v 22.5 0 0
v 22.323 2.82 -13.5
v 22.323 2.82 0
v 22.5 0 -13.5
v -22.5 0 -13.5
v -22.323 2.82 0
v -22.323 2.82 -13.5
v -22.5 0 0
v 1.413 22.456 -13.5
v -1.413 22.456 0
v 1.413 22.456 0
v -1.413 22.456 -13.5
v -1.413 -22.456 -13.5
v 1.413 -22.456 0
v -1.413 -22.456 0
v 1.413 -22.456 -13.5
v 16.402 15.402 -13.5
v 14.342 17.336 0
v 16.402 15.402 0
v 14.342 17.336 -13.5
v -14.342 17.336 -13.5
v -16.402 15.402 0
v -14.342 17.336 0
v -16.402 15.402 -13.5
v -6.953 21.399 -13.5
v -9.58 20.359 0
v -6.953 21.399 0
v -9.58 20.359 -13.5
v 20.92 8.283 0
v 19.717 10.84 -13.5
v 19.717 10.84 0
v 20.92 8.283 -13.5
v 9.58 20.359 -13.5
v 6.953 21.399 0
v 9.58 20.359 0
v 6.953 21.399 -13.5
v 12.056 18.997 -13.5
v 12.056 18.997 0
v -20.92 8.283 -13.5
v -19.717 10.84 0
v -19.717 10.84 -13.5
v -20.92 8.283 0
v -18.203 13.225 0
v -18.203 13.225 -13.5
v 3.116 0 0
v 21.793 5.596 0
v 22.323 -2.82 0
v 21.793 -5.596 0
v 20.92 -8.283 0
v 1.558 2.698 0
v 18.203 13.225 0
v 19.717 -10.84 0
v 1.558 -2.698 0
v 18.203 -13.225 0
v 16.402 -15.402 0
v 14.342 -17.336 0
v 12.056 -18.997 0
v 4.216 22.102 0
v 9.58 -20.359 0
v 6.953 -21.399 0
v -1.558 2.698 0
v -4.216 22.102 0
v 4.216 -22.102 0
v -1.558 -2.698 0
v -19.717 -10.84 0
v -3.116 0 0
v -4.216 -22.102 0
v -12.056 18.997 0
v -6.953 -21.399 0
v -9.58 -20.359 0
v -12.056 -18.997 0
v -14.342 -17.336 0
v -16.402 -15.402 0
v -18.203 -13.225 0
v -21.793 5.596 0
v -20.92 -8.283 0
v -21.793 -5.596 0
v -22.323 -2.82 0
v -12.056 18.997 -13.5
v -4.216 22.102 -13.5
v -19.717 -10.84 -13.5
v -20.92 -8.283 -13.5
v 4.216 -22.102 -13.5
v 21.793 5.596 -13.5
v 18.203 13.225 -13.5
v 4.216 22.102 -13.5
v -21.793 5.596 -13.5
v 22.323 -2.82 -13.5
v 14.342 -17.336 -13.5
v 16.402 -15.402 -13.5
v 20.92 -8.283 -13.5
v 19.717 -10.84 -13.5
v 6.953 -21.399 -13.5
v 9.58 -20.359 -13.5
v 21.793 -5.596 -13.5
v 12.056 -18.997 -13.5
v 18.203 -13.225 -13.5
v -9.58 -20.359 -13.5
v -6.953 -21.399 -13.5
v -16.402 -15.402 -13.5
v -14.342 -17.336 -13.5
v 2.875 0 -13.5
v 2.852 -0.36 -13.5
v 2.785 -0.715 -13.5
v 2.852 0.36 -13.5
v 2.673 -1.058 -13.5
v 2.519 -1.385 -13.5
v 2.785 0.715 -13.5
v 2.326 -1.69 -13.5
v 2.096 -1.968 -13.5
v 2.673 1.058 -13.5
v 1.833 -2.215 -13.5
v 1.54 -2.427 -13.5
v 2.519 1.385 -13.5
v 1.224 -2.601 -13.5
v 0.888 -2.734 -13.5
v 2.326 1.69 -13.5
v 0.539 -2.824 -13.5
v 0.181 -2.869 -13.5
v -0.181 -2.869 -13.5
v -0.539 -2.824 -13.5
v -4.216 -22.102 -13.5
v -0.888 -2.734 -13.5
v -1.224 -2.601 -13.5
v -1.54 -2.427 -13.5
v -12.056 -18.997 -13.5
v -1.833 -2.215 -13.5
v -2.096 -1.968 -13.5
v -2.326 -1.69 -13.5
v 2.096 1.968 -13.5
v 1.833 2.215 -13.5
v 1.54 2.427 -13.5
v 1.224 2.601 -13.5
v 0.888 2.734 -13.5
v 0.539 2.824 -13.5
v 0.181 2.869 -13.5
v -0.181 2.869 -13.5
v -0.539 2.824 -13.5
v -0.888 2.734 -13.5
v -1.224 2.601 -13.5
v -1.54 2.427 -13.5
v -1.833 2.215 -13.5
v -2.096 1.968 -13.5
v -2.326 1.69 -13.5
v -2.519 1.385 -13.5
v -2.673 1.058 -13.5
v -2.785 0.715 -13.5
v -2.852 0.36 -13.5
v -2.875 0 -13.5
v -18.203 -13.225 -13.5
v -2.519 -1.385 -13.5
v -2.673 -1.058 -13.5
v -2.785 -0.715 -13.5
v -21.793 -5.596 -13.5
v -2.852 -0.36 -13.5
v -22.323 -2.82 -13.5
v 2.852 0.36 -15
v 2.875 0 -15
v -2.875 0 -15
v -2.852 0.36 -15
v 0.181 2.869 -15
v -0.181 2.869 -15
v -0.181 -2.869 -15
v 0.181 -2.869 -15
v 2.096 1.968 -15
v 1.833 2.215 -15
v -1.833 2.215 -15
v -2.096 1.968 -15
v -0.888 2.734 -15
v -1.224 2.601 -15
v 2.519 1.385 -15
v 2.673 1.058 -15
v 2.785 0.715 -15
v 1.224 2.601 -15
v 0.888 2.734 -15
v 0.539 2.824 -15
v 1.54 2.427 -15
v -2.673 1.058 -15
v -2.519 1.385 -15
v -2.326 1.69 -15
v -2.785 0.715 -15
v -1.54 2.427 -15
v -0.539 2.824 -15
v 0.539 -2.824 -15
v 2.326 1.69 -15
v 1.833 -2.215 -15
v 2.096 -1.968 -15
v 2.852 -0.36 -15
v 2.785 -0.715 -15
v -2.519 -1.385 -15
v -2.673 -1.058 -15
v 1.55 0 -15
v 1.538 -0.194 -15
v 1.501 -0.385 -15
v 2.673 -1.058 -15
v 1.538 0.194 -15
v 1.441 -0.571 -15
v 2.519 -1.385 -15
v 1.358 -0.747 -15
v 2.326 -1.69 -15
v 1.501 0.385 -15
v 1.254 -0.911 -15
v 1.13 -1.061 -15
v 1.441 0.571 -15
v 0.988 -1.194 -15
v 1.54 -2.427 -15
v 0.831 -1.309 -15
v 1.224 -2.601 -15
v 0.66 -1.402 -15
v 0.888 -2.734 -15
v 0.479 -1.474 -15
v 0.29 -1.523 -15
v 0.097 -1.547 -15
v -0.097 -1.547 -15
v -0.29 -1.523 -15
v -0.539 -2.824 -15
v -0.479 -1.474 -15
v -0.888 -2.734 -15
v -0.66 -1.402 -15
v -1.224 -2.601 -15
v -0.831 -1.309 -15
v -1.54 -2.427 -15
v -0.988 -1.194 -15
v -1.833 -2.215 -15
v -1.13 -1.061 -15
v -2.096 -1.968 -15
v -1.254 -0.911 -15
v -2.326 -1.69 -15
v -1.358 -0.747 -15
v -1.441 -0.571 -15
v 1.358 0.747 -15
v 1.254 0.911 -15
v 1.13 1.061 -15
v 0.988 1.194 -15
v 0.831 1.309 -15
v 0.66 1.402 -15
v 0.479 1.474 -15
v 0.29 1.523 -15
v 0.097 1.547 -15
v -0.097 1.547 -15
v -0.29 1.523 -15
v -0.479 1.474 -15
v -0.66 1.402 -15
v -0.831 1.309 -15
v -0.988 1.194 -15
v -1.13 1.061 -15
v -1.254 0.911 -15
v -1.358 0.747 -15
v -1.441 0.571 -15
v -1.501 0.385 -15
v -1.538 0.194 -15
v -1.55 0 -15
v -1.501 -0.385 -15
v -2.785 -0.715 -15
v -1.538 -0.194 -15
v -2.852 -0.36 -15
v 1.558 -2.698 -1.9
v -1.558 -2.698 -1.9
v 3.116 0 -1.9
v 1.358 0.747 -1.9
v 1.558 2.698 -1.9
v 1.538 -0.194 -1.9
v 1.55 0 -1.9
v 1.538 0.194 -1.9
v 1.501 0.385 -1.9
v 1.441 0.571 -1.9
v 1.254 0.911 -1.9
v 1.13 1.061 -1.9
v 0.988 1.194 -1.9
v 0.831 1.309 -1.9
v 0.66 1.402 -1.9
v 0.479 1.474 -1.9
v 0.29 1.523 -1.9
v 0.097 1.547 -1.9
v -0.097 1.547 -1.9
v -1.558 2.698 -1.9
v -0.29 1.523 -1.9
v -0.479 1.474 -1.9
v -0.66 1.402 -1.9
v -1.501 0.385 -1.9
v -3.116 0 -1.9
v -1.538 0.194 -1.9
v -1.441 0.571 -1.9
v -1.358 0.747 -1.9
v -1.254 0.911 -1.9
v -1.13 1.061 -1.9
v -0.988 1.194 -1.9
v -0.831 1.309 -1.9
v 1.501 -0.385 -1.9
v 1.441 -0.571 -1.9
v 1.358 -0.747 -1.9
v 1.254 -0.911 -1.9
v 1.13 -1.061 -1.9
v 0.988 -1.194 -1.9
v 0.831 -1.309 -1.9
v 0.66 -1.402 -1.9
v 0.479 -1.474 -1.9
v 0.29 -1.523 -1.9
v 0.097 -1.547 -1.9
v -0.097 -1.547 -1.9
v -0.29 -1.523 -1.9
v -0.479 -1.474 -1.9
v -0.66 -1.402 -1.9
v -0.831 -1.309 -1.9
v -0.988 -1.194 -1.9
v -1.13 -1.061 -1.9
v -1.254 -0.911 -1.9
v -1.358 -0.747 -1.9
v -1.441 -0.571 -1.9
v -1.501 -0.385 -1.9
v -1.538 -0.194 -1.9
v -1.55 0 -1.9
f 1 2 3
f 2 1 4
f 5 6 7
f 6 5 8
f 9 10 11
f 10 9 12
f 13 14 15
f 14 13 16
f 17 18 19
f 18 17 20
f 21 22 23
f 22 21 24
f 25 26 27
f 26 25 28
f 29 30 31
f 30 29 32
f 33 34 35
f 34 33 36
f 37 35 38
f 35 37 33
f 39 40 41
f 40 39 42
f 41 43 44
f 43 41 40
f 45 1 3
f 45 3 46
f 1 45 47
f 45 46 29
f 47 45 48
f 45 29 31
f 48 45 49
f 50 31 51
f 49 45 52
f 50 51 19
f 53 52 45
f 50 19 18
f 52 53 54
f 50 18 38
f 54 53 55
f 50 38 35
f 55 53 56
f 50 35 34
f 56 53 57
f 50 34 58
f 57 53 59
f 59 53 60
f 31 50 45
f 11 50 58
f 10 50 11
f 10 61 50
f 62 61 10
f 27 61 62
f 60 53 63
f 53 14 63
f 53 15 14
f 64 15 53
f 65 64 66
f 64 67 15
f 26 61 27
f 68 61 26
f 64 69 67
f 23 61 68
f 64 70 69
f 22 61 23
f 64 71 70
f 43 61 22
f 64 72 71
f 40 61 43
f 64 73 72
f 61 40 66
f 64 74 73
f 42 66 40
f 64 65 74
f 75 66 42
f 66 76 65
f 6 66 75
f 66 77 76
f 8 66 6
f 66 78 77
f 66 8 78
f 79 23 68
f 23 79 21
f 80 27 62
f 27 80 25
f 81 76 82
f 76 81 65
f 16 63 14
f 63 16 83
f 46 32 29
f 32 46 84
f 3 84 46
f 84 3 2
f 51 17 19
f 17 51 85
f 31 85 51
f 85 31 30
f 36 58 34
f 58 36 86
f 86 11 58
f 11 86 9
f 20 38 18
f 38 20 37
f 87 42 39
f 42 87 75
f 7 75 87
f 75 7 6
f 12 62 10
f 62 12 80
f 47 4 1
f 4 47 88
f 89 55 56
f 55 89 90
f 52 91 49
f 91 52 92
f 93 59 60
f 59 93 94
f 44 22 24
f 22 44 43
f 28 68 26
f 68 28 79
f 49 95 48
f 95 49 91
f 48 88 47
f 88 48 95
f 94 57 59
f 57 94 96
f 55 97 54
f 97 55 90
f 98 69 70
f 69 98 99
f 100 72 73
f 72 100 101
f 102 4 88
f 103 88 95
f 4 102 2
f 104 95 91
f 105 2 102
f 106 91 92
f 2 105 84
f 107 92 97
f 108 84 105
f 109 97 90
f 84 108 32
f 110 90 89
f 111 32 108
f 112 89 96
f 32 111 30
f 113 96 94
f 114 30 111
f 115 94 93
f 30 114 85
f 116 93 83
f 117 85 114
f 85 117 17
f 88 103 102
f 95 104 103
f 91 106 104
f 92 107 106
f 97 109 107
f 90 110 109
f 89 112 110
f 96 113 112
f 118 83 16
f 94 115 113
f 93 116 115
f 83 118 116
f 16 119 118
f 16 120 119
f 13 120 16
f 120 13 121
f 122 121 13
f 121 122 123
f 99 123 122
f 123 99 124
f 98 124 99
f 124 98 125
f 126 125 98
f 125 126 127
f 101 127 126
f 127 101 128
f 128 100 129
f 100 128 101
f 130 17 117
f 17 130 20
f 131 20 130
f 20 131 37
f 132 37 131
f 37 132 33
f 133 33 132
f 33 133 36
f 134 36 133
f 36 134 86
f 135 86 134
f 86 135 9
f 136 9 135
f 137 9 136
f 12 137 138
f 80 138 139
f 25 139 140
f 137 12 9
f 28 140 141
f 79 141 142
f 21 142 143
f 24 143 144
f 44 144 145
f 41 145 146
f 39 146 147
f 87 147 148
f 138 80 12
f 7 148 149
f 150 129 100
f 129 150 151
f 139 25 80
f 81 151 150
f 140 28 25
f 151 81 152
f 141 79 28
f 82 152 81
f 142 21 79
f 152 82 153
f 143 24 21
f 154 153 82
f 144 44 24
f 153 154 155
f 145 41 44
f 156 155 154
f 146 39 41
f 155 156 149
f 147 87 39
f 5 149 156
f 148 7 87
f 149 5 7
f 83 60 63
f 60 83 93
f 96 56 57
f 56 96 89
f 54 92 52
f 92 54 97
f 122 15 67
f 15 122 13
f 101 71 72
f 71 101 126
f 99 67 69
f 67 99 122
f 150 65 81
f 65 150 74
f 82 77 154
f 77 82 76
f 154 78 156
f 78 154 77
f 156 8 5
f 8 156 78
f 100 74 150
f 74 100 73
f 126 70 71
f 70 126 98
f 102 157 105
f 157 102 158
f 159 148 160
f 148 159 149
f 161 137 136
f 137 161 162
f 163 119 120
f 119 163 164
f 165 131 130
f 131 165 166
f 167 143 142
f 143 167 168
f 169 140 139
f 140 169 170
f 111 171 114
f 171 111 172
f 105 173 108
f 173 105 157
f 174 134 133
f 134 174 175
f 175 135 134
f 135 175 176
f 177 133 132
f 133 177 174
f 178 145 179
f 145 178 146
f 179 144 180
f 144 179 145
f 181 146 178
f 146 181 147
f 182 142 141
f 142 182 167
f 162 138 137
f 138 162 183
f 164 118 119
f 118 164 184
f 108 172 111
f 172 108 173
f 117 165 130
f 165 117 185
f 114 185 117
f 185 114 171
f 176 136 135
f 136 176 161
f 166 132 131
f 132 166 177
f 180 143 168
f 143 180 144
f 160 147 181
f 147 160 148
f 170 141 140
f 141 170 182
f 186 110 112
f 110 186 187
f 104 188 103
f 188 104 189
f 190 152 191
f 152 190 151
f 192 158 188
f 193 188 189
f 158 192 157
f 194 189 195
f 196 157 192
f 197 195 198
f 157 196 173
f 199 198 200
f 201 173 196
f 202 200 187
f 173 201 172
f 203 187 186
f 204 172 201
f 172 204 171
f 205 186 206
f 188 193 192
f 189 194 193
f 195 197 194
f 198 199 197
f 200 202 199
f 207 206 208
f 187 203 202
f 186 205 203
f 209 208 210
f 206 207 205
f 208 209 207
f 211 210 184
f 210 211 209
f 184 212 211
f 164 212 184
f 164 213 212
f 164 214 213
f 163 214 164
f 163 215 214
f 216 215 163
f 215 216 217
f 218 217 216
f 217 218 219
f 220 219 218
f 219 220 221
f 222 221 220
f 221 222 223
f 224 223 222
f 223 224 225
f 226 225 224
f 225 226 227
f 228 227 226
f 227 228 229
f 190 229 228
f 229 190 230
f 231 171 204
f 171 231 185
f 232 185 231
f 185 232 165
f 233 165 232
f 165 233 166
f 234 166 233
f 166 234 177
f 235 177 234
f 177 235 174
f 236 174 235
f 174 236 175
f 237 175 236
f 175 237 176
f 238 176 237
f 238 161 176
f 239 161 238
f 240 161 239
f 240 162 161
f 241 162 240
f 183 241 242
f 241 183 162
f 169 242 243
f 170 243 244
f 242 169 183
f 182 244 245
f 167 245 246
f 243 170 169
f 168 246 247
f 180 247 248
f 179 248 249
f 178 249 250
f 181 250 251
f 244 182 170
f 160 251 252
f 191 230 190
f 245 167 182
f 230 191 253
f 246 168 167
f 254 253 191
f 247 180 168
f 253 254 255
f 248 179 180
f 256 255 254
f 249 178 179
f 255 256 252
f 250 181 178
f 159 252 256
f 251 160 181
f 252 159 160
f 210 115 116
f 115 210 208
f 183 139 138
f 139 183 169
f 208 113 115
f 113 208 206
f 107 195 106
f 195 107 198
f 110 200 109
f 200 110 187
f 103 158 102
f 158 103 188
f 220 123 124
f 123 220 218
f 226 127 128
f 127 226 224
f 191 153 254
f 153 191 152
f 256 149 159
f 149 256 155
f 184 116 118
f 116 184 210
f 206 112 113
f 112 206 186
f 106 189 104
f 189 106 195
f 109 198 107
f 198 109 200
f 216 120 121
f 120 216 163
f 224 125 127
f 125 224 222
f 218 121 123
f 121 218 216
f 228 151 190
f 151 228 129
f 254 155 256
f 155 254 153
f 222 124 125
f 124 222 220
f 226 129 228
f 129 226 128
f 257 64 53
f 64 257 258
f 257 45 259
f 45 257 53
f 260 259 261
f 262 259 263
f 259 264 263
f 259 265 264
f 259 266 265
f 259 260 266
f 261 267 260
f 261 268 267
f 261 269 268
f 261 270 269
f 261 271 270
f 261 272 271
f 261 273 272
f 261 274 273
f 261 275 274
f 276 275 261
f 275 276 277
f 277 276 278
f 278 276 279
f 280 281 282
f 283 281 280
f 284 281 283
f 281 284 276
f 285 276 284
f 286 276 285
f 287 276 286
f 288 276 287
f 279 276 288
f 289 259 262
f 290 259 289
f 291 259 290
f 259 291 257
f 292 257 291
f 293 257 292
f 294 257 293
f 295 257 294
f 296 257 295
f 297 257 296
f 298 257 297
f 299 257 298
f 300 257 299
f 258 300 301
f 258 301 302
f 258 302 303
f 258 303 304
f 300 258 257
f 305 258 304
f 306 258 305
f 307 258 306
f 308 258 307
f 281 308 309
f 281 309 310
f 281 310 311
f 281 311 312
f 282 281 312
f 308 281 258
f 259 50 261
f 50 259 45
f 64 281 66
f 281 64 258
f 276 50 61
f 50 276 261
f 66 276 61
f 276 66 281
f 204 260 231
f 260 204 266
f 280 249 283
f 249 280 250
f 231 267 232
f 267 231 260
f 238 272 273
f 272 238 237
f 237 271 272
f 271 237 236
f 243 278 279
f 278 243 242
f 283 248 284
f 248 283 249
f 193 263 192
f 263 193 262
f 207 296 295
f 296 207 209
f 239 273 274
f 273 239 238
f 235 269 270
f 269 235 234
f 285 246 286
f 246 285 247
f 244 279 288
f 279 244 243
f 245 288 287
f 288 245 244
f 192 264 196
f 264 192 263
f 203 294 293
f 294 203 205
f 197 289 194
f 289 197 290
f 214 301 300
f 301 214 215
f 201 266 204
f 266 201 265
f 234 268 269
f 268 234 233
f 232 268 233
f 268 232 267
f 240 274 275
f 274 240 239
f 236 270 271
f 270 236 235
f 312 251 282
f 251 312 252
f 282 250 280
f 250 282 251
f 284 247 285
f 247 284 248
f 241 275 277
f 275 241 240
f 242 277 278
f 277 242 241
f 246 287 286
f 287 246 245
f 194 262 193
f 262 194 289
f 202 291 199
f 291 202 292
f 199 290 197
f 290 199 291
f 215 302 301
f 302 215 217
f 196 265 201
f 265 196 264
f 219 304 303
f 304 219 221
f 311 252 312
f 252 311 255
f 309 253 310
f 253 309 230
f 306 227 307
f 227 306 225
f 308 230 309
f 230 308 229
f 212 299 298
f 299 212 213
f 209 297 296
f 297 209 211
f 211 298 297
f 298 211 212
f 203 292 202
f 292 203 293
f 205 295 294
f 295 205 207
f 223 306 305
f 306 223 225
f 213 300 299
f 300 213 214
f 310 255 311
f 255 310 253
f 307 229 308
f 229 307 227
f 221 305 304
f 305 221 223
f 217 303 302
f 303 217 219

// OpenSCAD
$fn = 50;


difference() {
	union() {
		translate(v = [0, 0, -13.5000000000]) {
			cylinder(h = 13.5000000000, r = 22.5000000000);
		}
		translate(v = [0, 0, -15.0000000000]) {
			cylinder(h = 15, r = 2.8750000000);
		}
	}
	union() {
		translate(v = [0, 0, 0]) {
			rotate(a = [0, 0, 0]) {
				difference() {
					union() {
						translate(v = [0, 0, -1.9000000000]) {
							linear_extrude(height = 1.9000000000) {
								polygon(points = [[3.1158000000, 0.0000000000], [1.5579000000, 2.6983619531], [-1.5579000000, 2.6983619531], [-3.1158000000, 0.0000000000], [-1.5579000000, -2.6983619531], [1.5579000000, -2.6983619531]]);
							}
						}
					}
					union();
				}
			}
		}
		#translate(v = [0, 0, -100.0000000000]) {
			cylinder(h = 200, r = 1.5500000000);
		}
	}
}
